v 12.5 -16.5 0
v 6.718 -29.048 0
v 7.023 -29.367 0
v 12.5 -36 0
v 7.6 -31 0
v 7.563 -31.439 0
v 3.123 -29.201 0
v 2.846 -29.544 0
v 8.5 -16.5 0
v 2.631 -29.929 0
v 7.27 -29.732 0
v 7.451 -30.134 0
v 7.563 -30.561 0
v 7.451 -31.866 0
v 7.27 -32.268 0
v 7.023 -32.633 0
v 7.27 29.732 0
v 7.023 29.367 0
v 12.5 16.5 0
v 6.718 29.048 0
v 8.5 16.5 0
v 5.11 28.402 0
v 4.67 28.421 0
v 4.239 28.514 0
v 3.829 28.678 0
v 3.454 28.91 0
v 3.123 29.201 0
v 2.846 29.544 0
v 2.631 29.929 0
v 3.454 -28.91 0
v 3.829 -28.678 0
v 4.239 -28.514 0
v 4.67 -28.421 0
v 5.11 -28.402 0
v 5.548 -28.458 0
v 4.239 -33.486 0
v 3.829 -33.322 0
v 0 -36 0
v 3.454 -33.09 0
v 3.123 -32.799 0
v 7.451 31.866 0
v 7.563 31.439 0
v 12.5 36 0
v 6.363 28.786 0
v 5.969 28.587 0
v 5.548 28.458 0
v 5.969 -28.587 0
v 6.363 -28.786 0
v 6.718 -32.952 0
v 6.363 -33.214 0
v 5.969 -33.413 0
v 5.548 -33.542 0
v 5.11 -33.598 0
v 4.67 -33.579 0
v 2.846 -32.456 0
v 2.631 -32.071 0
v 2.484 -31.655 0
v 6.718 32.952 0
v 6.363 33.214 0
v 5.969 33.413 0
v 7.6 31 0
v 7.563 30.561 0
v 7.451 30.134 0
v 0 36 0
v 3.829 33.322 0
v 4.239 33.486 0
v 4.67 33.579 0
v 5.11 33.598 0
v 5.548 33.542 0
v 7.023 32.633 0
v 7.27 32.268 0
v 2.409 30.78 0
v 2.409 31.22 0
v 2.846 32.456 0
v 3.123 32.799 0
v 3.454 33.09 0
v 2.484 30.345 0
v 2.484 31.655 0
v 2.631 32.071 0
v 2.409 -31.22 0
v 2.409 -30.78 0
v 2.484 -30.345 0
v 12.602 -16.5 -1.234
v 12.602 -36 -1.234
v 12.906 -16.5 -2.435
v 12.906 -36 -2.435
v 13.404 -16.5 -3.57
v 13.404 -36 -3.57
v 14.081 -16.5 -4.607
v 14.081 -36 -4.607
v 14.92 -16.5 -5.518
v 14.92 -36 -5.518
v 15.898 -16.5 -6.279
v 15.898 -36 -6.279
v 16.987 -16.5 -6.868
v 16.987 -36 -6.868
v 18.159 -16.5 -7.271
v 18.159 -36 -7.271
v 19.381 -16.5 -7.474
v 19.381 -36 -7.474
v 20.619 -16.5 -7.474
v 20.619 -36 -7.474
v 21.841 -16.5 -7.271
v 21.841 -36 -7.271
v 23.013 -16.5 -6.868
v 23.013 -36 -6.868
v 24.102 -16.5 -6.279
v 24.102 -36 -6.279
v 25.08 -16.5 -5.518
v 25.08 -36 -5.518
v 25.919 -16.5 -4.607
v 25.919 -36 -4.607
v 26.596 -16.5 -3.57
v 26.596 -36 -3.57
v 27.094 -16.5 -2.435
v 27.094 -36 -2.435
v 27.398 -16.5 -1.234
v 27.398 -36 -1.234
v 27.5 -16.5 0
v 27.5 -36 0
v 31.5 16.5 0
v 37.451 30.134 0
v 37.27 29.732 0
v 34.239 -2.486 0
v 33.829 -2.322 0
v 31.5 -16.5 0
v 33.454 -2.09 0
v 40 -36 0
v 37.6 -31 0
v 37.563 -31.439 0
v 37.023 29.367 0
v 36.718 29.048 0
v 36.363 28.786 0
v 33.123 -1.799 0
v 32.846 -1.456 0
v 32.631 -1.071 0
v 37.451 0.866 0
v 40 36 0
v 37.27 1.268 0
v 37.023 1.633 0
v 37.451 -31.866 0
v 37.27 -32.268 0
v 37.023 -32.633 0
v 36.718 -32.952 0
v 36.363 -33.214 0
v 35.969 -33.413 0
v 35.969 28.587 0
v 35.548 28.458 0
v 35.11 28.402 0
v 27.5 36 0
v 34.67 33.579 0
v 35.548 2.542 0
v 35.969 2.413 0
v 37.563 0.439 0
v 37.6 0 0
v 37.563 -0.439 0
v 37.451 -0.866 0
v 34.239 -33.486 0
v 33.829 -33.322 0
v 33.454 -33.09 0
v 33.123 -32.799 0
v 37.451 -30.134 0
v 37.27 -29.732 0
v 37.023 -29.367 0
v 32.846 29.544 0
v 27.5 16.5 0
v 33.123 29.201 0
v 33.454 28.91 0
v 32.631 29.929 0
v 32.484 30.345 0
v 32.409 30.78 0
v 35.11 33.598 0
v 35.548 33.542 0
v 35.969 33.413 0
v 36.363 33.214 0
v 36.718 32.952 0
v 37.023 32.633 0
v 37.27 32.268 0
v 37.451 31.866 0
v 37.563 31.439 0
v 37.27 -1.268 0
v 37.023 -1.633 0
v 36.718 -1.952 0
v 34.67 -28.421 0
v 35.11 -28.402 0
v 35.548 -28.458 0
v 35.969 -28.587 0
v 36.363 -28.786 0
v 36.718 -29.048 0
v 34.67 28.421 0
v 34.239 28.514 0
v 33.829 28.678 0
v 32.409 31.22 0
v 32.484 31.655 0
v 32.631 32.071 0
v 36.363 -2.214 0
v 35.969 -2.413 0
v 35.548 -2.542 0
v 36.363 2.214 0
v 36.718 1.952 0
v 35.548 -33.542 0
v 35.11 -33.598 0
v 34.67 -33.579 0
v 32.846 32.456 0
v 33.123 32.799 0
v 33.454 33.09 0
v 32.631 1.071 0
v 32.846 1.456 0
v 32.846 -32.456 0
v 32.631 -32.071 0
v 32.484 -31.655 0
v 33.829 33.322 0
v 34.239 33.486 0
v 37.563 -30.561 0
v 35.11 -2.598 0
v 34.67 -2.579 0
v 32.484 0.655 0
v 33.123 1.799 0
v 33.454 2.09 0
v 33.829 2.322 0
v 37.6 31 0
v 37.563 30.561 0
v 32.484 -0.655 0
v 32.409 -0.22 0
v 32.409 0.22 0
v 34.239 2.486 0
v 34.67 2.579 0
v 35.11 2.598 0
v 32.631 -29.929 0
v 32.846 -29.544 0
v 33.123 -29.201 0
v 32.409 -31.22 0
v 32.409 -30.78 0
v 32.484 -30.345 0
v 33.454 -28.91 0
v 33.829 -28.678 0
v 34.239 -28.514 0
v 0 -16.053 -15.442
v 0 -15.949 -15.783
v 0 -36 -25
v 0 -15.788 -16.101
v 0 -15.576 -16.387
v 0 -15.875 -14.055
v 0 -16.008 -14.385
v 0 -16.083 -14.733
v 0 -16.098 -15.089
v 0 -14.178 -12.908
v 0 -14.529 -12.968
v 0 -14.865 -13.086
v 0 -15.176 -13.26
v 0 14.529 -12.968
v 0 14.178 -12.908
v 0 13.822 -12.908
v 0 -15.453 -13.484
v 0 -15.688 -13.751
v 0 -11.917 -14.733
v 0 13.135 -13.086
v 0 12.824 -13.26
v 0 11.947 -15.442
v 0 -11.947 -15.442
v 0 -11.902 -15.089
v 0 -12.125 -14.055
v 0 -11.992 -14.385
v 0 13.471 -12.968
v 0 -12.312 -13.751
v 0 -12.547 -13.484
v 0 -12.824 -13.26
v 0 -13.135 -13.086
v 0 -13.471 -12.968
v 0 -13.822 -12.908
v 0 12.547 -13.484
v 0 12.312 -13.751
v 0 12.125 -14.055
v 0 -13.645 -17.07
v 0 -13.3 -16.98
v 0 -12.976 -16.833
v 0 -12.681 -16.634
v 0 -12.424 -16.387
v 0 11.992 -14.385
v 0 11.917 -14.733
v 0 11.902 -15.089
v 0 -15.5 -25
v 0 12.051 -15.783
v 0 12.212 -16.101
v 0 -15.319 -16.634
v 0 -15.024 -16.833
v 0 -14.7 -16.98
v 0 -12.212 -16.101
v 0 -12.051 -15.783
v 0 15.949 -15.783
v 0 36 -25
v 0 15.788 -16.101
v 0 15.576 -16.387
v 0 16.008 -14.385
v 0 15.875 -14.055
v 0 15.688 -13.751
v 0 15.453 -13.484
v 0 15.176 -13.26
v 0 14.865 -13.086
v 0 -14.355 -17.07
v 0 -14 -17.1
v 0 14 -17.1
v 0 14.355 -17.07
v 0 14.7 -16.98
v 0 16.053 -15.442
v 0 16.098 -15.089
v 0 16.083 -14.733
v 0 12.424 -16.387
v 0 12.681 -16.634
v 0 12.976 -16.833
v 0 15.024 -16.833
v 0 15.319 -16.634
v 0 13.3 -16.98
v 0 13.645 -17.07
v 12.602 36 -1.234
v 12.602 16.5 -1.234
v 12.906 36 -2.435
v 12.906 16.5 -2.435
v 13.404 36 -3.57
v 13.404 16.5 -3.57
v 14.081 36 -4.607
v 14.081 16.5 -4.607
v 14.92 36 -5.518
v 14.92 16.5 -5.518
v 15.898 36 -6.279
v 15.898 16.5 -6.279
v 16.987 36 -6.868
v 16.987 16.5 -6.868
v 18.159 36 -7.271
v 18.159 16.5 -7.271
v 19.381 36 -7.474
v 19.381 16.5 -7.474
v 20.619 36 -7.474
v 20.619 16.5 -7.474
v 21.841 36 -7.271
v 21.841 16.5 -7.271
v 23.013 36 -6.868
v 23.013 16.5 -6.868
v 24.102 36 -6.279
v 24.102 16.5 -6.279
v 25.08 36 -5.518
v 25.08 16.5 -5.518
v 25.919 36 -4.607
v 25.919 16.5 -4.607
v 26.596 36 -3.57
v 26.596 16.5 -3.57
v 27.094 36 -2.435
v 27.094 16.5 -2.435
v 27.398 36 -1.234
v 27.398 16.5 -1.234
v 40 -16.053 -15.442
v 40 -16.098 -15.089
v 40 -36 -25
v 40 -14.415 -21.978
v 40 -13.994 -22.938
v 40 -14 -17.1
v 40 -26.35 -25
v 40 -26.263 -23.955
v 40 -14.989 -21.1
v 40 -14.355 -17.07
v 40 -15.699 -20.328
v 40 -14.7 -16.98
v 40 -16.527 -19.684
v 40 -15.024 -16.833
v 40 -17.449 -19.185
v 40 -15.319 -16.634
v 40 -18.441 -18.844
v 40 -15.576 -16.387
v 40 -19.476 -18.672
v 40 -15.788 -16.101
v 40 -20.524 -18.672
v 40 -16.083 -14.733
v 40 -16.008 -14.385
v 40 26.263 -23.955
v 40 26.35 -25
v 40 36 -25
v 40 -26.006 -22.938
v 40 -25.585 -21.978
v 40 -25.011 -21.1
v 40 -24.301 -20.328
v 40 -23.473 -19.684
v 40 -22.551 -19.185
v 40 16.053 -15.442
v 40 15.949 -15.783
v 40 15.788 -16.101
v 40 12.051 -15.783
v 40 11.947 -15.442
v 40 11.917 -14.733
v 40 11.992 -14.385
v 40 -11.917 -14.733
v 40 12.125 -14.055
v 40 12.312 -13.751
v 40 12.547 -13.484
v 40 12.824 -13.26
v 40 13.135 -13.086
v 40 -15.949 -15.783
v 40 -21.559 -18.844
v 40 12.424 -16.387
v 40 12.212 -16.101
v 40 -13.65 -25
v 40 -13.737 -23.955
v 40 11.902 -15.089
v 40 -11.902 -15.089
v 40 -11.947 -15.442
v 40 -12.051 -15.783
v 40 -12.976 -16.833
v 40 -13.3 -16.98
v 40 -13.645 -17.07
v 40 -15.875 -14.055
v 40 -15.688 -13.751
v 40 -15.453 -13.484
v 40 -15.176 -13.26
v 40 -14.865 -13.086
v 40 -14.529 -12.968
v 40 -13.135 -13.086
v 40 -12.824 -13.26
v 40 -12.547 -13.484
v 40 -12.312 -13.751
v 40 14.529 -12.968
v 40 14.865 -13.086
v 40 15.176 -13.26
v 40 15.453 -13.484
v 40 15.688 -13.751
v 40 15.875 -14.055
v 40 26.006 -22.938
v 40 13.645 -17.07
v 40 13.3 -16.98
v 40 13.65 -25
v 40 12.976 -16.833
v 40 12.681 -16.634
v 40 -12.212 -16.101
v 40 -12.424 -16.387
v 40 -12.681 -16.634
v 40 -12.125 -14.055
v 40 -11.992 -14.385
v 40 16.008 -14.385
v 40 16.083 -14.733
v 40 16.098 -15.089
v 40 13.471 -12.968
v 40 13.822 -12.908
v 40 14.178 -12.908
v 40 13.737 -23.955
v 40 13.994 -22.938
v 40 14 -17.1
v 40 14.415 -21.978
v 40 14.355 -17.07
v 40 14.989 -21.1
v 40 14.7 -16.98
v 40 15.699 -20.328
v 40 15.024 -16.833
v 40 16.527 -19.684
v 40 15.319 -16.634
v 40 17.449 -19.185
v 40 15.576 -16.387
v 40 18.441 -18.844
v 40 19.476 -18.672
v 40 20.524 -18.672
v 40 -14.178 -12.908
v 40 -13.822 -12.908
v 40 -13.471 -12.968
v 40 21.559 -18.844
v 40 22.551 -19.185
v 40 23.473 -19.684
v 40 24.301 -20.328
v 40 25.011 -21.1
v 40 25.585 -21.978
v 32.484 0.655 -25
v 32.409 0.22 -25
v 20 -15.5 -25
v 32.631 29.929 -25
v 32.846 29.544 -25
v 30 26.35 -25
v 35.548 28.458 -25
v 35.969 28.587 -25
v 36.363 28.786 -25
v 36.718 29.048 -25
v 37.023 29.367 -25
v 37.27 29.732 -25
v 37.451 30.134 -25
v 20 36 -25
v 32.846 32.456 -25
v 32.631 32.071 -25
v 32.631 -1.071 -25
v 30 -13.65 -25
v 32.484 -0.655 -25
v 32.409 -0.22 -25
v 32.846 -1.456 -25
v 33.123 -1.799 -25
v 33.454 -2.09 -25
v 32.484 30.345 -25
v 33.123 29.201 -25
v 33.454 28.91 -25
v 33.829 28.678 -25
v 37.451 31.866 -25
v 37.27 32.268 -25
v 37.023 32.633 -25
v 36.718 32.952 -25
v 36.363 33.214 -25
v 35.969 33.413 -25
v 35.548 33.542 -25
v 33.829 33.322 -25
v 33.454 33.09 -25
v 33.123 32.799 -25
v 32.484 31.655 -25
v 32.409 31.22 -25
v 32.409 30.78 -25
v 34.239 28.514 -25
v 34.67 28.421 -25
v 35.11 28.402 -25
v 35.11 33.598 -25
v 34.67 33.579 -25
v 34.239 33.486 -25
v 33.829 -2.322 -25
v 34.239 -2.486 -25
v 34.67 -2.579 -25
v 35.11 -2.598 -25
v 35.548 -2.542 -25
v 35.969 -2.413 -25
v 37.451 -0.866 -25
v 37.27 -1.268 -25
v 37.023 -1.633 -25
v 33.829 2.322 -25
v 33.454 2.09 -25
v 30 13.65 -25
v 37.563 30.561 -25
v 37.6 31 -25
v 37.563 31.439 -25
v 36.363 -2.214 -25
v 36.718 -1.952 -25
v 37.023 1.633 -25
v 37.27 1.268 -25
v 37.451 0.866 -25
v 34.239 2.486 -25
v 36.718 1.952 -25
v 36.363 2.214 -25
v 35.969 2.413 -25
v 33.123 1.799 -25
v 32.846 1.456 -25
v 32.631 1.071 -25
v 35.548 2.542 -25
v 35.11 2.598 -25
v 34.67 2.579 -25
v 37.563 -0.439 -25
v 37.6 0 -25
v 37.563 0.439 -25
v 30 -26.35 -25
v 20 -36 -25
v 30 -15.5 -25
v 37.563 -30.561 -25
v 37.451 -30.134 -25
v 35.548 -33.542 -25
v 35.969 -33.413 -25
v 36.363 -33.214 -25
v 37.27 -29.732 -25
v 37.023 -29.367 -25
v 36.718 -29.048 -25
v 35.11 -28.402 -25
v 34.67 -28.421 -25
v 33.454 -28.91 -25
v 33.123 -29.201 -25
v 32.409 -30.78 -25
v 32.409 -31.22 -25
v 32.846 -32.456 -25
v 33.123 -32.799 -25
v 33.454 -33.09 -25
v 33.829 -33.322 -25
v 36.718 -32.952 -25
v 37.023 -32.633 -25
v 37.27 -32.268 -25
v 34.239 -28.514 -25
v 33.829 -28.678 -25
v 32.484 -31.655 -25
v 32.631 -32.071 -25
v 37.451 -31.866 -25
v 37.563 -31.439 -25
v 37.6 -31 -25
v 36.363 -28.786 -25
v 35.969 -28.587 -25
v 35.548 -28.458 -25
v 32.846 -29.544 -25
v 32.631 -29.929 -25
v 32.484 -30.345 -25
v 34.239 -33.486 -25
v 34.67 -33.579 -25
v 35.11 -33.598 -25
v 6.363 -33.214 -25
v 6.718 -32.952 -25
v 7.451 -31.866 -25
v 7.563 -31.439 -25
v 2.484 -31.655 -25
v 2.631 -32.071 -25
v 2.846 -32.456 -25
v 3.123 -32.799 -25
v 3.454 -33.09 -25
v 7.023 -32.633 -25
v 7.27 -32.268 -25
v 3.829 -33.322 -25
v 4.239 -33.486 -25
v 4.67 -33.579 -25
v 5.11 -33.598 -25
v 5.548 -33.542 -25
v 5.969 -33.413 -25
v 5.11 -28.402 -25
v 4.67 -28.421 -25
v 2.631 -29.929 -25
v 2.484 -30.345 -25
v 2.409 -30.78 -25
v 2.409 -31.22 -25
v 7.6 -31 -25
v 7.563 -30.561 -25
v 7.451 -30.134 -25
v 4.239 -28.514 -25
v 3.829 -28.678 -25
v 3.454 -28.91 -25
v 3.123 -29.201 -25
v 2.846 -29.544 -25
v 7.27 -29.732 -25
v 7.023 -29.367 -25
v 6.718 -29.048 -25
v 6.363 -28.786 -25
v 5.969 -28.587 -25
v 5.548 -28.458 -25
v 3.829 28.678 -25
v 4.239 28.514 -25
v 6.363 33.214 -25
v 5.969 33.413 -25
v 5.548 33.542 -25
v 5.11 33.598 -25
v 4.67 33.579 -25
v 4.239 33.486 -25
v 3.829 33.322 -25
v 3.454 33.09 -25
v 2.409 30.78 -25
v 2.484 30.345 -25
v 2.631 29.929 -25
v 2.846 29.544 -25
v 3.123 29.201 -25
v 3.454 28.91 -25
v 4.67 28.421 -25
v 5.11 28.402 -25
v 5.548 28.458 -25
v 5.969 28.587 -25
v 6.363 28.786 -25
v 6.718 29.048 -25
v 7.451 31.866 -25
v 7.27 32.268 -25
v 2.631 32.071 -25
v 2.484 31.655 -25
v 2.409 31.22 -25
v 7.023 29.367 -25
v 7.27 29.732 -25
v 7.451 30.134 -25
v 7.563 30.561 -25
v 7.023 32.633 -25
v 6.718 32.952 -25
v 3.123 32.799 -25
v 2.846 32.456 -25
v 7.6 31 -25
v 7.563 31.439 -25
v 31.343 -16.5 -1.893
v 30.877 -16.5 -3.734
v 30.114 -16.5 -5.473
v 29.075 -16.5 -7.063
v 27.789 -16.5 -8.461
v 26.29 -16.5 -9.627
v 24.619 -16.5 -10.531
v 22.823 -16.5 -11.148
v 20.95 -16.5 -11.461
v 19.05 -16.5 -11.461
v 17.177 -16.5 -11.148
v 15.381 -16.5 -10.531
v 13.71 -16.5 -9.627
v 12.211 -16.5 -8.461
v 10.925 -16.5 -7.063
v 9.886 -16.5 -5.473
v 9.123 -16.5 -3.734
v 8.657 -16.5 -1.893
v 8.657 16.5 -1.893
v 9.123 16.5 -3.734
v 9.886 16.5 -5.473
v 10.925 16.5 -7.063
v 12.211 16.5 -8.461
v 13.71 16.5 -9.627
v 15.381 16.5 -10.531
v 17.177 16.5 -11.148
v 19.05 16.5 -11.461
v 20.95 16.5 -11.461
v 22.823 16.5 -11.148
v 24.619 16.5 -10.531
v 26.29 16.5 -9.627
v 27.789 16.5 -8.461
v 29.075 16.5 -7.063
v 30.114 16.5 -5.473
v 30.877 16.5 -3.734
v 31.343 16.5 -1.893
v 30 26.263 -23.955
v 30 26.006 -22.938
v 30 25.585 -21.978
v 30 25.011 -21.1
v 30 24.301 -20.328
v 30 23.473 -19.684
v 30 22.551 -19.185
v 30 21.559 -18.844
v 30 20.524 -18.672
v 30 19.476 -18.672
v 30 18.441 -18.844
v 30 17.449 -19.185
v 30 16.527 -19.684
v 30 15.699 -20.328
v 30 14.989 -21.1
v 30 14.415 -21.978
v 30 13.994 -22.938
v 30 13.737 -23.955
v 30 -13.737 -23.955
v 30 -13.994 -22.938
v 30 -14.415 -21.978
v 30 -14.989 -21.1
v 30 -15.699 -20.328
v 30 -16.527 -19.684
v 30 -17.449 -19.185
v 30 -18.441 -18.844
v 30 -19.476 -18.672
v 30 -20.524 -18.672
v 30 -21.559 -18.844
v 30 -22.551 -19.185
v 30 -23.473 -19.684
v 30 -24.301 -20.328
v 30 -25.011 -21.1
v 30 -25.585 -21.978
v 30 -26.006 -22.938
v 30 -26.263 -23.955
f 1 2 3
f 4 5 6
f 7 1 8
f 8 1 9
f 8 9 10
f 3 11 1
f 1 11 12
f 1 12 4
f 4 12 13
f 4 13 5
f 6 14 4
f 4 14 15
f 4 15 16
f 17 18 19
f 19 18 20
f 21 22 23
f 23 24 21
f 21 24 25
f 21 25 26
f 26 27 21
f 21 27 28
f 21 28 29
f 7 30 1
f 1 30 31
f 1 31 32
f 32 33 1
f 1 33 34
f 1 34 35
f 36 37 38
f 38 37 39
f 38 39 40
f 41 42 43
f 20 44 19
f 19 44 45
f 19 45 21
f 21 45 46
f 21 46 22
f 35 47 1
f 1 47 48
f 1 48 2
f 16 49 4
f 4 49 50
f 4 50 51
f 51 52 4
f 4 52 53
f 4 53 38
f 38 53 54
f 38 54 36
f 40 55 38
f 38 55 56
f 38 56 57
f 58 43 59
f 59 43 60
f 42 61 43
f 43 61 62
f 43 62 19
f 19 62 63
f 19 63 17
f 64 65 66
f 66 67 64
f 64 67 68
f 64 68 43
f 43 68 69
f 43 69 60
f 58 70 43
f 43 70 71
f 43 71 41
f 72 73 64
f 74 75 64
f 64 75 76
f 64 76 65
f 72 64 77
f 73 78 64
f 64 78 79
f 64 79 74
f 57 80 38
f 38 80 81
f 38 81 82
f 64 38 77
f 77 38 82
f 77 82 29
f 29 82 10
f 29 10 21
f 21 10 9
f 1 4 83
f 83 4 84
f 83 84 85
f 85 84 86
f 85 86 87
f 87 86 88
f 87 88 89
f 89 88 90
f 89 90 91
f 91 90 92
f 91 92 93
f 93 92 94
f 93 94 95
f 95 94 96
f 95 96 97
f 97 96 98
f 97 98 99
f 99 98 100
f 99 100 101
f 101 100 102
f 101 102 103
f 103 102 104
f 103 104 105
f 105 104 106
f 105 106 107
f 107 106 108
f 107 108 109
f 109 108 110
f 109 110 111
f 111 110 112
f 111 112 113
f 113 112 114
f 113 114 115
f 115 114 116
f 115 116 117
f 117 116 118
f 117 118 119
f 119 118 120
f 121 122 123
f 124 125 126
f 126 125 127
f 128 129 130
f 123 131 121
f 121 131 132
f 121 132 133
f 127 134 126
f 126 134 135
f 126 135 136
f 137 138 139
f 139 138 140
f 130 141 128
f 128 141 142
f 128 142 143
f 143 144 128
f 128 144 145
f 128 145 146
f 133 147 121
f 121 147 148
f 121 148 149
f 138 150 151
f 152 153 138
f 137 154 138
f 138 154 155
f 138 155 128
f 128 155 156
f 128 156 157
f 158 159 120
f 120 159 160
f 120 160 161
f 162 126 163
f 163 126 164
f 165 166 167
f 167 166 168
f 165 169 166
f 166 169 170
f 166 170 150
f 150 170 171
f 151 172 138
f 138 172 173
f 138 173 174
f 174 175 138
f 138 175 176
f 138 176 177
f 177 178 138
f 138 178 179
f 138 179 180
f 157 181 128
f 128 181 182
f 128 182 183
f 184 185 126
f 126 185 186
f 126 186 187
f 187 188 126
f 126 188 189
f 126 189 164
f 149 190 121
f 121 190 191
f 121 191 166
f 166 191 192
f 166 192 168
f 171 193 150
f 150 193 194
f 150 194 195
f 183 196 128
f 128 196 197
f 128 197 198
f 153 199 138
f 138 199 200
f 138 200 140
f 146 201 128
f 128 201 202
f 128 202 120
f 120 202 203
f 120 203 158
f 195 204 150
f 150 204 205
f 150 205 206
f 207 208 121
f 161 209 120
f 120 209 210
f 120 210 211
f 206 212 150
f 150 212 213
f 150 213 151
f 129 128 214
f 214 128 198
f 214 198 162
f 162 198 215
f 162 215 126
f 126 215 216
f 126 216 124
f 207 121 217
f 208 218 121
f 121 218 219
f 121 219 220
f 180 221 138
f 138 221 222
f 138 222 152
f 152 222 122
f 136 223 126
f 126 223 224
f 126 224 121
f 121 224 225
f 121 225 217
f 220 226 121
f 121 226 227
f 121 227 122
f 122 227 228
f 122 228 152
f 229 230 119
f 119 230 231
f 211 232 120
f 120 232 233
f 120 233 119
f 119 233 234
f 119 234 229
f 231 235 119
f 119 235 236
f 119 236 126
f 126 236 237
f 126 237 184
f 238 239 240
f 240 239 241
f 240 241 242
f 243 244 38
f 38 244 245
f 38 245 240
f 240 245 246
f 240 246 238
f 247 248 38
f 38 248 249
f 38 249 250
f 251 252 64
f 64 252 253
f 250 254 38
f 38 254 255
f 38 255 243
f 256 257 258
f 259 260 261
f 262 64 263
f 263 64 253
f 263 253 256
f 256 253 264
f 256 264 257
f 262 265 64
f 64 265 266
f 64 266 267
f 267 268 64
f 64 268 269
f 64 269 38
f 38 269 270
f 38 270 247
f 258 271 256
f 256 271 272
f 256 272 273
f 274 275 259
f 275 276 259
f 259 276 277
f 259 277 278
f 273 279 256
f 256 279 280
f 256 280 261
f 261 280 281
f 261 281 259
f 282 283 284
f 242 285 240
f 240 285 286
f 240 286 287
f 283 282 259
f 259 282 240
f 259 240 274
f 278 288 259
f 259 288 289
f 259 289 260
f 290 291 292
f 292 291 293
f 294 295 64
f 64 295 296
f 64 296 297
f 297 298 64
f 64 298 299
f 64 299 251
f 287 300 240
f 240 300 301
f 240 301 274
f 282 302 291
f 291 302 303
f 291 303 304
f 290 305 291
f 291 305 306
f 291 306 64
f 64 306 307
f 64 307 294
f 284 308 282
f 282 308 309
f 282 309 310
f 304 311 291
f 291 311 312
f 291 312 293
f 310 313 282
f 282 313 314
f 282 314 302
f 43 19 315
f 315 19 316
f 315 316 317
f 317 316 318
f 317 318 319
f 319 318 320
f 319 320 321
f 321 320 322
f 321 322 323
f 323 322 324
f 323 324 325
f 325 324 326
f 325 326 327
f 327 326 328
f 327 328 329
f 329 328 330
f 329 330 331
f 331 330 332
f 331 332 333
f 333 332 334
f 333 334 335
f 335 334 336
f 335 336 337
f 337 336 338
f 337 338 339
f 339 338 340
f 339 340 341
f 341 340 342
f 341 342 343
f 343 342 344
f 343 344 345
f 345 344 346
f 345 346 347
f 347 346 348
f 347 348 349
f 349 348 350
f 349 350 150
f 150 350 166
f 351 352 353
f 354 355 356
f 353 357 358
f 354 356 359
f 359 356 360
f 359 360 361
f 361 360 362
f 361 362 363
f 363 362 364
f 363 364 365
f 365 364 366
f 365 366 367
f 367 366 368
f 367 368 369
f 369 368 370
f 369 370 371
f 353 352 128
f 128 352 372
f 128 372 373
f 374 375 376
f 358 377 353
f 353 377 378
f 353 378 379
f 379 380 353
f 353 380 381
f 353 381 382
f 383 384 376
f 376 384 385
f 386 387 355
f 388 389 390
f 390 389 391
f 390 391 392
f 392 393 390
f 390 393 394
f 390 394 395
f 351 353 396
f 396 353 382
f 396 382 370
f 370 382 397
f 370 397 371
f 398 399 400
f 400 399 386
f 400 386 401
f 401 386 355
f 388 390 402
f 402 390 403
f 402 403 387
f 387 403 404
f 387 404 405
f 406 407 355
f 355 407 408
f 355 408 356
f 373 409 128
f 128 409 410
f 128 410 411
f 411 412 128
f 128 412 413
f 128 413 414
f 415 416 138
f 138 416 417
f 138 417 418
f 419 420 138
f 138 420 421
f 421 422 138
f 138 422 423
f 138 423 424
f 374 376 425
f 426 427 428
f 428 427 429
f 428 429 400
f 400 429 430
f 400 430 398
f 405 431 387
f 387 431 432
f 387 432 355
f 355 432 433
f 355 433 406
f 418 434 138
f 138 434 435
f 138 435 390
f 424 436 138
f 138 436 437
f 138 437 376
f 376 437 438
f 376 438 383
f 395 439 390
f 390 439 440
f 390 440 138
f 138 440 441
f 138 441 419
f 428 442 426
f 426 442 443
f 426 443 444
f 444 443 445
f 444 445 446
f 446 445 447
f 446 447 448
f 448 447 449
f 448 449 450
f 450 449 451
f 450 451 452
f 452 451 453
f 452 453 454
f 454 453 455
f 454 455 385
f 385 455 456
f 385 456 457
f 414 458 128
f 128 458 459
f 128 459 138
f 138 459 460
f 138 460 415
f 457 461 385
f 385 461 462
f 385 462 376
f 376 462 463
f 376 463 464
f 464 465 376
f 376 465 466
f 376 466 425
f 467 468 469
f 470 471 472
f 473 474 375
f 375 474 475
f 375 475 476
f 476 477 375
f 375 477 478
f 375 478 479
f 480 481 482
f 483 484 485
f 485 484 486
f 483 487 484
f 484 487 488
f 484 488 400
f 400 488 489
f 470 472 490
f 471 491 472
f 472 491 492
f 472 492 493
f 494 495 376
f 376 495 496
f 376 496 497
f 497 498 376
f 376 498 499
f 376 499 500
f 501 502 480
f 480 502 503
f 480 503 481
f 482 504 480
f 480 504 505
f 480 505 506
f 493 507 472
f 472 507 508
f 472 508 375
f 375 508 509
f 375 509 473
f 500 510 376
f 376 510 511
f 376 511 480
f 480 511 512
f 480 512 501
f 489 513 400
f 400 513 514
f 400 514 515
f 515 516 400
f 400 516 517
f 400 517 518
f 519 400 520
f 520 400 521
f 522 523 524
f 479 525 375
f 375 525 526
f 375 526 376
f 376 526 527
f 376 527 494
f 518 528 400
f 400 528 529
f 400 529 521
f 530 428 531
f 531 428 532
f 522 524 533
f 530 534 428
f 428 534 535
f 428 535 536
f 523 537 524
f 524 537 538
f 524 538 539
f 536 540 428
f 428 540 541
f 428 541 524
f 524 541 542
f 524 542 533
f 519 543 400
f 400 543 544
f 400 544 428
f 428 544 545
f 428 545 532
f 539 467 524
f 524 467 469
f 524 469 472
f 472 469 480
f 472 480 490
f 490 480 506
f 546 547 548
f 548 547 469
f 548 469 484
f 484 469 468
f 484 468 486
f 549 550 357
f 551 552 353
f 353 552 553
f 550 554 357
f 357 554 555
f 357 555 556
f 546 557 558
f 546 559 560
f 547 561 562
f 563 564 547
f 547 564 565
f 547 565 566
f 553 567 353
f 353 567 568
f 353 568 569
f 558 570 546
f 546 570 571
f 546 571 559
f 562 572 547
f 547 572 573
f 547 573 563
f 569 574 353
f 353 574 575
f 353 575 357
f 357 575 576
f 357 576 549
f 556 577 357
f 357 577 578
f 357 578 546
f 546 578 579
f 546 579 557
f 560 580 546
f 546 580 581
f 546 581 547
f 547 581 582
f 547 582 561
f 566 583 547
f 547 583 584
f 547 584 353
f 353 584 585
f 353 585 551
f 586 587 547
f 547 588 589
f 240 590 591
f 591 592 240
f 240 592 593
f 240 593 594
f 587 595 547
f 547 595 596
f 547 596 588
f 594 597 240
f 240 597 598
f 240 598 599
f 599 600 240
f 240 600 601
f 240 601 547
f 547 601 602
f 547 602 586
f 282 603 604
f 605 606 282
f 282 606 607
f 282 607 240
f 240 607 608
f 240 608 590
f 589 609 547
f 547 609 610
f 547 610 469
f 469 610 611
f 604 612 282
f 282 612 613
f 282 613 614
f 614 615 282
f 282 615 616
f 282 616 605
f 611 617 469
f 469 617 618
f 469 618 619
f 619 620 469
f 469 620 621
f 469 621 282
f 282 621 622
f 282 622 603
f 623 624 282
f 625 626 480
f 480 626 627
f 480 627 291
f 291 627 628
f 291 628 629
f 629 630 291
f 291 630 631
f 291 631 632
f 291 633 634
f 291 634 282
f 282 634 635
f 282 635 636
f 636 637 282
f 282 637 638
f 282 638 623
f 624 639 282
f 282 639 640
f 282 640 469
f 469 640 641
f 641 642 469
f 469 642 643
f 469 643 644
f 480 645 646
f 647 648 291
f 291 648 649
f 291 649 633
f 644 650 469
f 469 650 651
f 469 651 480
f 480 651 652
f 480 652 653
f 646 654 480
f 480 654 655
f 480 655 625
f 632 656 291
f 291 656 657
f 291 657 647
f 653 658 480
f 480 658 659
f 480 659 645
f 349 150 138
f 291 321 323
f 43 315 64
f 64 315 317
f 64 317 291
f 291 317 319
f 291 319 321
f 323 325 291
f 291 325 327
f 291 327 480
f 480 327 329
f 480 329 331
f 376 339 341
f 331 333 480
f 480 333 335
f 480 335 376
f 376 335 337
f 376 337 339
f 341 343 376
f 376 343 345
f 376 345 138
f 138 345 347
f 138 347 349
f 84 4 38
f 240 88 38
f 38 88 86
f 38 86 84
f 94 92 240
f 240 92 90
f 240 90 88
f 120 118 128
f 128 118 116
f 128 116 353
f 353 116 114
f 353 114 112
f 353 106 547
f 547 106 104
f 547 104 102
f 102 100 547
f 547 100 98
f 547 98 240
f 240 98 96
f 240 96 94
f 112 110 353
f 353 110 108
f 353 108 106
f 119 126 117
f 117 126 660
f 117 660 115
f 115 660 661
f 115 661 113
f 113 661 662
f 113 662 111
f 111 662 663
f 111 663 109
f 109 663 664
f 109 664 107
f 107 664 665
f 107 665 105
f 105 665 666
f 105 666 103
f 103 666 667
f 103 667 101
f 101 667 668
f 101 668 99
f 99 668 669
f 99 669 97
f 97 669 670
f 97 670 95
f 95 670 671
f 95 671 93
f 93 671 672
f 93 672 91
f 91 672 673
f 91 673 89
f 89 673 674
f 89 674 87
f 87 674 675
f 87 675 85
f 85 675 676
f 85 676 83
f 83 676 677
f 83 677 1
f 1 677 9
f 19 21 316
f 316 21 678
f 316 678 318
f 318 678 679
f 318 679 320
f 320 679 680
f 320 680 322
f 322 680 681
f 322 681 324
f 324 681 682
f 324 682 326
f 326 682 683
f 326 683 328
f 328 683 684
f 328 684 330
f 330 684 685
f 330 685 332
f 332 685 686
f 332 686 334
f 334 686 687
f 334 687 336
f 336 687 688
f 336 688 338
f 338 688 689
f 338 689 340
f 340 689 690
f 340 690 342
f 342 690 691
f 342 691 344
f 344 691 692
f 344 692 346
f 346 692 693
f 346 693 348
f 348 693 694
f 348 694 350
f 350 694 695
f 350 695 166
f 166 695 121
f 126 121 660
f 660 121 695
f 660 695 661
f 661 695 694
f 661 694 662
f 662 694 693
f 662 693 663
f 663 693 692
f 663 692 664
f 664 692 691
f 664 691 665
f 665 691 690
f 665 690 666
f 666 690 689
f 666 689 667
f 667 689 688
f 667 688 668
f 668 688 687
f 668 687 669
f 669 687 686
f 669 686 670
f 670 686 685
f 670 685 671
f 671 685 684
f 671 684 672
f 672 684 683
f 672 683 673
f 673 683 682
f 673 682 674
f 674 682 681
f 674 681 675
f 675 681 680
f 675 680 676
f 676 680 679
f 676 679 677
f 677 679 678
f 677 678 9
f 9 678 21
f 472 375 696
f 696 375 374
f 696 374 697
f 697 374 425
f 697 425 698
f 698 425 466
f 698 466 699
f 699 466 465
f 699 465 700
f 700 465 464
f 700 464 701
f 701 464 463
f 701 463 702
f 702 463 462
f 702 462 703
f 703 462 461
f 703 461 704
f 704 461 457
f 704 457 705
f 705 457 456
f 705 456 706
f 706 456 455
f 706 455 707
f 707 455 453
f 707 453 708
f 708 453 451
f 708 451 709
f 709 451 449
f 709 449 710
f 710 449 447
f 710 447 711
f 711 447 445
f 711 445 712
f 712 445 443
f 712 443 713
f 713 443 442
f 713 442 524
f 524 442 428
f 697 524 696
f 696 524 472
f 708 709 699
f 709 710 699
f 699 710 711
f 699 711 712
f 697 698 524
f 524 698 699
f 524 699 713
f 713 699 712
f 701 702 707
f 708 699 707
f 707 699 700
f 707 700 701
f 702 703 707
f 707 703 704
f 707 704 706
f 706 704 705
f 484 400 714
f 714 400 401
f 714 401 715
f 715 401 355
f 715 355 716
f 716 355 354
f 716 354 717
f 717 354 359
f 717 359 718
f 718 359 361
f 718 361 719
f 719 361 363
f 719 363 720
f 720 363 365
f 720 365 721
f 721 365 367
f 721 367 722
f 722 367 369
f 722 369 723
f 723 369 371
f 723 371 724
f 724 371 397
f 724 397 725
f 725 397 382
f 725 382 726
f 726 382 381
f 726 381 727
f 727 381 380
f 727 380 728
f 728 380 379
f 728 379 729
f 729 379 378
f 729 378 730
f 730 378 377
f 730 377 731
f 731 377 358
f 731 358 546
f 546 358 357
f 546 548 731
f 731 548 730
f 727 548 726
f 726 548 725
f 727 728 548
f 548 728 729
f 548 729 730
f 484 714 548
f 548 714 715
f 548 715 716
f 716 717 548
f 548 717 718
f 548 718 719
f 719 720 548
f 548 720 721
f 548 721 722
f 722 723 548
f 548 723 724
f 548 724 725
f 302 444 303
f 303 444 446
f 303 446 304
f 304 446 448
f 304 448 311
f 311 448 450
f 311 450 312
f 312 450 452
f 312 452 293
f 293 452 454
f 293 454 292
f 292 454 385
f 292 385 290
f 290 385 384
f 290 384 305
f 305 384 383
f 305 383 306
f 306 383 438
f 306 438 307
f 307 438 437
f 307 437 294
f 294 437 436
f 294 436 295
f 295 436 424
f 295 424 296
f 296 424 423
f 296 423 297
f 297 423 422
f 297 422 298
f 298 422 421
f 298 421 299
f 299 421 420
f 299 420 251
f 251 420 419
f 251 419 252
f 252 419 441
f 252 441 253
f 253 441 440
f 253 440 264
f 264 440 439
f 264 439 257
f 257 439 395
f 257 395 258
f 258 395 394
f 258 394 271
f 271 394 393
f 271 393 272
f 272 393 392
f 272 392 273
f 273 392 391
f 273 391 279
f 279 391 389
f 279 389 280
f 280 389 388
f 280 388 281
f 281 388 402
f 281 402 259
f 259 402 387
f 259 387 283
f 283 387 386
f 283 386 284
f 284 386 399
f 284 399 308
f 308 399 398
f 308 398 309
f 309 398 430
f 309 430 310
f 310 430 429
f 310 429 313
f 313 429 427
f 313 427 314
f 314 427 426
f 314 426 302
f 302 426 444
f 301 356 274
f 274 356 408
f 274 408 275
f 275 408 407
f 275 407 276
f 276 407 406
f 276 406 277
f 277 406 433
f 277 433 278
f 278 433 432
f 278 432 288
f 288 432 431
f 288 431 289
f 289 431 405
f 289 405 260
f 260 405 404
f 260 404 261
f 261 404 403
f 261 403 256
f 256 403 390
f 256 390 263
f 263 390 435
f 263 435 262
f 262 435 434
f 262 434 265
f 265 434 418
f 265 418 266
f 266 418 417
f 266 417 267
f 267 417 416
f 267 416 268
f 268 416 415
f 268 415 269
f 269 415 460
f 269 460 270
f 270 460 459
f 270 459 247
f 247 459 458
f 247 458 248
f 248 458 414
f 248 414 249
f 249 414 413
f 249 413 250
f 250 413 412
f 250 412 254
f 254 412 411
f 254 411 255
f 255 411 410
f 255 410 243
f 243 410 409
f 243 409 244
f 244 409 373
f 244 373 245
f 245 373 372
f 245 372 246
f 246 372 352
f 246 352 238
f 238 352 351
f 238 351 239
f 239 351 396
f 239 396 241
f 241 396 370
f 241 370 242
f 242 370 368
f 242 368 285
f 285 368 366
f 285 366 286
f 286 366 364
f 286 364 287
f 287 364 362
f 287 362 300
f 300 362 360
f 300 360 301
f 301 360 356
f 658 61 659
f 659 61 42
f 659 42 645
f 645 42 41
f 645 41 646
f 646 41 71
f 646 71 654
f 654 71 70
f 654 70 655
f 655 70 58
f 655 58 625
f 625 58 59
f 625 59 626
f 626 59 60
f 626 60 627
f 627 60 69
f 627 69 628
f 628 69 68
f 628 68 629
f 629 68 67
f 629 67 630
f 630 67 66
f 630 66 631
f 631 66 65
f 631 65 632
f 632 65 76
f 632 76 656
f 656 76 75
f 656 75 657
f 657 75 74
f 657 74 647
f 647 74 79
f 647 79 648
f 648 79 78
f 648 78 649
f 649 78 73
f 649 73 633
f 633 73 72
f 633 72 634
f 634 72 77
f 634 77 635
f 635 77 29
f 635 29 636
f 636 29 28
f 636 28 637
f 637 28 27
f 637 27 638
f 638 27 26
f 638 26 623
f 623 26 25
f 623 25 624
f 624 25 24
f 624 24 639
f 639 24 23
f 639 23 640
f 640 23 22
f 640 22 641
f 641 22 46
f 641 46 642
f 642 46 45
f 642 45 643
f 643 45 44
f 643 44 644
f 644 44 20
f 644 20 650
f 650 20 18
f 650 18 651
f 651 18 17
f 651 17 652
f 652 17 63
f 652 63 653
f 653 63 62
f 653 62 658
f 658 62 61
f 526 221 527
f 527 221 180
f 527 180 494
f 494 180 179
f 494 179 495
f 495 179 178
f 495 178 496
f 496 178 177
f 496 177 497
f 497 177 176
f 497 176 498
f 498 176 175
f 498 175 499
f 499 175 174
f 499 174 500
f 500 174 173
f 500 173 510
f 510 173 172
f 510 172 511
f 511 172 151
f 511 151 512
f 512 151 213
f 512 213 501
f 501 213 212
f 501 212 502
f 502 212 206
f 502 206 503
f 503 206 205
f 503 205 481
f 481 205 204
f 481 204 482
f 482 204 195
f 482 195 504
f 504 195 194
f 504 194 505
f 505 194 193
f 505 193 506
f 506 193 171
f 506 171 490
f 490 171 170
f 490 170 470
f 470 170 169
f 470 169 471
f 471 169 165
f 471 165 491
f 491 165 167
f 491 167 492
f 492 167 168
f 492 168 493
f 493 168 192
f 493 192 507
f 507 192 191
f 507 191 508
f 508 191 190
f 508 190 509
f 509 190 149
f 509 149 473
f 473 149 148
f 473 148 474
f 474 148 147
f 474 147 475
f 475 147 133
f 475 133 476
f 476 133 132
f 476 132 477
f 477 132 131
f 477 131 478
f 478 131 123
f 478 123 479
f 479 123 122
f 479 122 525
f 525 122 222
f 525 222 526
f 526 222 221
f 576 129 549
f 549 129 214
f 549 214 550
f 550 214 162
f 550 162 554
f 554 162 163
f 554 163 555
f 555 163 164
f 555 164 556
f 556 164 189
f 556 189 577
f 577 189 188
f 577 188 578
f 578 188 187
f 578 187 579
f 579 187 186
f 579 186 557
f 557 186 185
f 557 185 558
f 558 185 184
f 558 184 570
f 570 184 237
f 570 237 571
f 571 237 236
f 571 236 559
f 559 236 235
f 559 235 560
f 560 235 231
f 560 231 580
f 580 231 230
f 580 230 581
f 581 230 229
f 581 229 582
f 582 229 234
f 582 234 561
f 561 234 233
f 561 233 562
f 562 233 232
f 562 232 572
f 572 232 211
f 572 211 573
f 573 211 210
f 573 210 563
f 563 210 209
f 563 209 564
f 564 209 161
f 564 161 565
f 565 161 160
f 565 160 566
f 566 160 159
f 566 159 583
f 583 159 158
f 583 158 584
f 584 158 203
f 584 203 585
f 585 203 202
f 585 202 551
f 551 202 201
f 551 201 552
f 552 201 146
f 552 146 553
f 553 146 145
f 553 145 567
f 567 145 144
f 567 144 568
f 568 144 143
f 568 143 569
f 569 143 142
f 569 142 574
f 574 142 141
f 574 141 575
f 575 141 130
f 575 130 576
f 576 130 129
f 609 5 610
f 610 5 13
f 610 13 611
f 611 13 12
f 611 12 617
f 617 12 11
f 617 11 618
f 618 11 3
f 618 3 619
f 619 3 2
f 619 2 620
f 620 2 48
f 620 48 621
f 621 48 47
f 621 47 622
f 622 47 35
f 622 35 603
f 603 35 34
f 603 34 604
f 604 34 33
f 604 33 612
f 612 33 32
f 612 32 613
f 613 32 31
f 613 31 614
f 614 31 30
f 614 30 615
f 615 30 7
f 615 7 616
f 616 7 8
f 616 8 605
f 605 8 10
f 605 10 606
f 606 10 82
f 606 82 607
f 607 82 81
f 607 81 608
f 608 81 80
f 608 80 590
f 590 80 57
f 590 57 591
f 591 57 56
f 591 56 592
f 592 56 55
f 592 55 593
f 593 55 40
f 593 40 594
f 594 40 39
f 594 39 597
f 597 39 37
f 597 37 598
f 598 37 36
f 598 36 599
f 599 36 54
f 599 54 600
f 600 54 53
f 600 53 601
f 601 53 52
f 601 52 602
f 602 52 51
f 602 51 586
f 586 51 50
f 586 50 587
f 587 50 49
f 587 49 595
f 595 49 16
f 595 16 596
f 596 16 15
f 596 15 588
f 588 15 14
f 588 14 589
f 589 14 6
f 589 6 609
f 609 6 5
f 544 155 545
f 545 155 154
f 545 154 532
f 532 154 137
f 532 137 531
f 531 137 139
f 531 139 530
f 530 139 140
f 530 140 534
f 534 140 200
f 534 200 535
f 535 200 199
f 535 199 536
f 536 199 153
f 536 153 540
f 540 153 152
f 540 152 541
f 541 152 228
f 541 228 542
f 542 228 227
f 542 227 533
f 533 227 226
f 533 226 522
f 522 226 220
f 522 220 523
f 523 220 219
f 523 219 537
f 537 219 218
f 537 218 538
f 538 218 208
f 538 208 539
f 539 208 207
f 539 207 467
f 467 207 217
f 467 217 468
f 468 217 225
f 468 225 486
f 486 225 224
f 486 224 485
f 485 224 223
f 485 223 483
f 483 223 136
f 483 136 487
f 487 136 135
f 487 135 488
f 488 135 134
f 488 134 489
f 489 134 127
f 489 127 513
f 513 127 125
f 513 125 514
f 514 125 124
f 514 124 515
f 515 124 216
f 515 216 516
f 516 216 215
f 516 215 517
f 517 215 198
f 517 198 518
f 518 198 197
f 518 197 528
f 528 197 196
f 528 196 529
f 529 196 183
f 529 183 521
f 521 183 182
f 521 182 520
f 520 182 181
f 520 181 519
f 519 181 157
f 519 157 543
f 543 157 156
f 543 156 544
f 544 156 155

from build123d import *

# Parameters (mm, degrees)
BOSS_EXTRUDE1_DEPTH = 36
CUT_EXTRUDE1_DEPTH  = 16.5
CUT_EXTRUDE2_DEPTH  = 10
SKETCH4_R           = 2.1
CUT_EXTRUDE3_DEPTH  = 60.338014797
SKETCH5_R           = 2.6
CUT_EXTRUDE4_DEPTH  = 60.338014797


with BuildPart() as part:
    # Sketch1 → Boss-Extrude1 (new, symmetric)
    with BuildSketch(Plane(origin=(0, 0, 0), x_dir=(1, 0, 0), z_dir=(0, 1, 0))):
        with BuildLine():
            Line((27.5, 0), (40, 0))
            Line((40, 0), (40, 25))
            Line((40, 25), (0, 25))
            Line((0, 25), (0, 0))
            Line((0, 0), (12.5, 0))
            ThreePointArc((12.5, 0), (20, 7.5), (27.5, 0))
        make_face()
    extrude(amount=BOSS_EXTRUDE1_DEPTH, both=True)

    # Sketch2 → Cut-Extrude1 (cut, symmetric)
    with BuildSketch(Plane(origin=(0, 0, 0), x_dir=(1, 0, 0), z_dir=(0, 1, 0))):
        with BuildLine():
            Line((8.5, 0), (31.5, 0))
            ThreePointArc((31.5, 0), (20, 11.5), (8.5, 0))
        make_face()
    extrude(amount=CUT_EXTRUDE1_DEPTH, both=True, mode=Mode.SUBTRACT)

    # Sketch3 → Cut-Extrude2 (cut)
    with BuildSketch(Plane(origin=(40, 0, 0), x_dir=(0, 0, -1), z_dir=(1, 0, 0))):
        with BuildLine():
            Line((25, 26.35), (25, 13.65))
            ThreePointArc((25, 13.65), (18.65, 20), (25, 26.35))
        make_face()
        with BuildLine():
            Line((25, -13.65), (25, -26.35))
            ThreePointArc((25, -26.35), (18.65, -20), (25, -13.65))
        make_face()
    extrude(amount=-CUT_EXTRUDE2_DEPTH, mode=Mode.SUBTRACT)

    # Sketch4 → Cut-Extrude3 (cut, through all)
    with BuildSketch(Plane(origin=(40, 0, 0), x_dir=(0, 0, -1), z_dir=(1, 0, 0))):
        with Locations((15, 14)):
            Circle(SKETCH4_R)
        with Locations((15, -14)):
            Circle(SKETCH4_R)
    extrude(amount=-CUT_EXTRUDE3_DEPTH, mode=Mode.SUBTRACT)

    # Sketch5 → Cut-Extrude4 (cut, through all)
    with BuildSketch(Plane.XY):
        with Locations((5, 31)):
            Circle(SKETCH5_R)
        with Locations((35, 31)):
            Circle(SKETCH5_R)
        with Locations((35, -31)):
            Circle(SKETCH5_R)
        with Locations((5, -31)):
            Circle(SKETCH5_R)
        with Locations((35, 0)):
            Circle(SKETCH5_R)
    extrude(amount=-CUT_EXTRUDE4_DEPTH, mode=Mode.SUBTRACT)


solid = part.part
